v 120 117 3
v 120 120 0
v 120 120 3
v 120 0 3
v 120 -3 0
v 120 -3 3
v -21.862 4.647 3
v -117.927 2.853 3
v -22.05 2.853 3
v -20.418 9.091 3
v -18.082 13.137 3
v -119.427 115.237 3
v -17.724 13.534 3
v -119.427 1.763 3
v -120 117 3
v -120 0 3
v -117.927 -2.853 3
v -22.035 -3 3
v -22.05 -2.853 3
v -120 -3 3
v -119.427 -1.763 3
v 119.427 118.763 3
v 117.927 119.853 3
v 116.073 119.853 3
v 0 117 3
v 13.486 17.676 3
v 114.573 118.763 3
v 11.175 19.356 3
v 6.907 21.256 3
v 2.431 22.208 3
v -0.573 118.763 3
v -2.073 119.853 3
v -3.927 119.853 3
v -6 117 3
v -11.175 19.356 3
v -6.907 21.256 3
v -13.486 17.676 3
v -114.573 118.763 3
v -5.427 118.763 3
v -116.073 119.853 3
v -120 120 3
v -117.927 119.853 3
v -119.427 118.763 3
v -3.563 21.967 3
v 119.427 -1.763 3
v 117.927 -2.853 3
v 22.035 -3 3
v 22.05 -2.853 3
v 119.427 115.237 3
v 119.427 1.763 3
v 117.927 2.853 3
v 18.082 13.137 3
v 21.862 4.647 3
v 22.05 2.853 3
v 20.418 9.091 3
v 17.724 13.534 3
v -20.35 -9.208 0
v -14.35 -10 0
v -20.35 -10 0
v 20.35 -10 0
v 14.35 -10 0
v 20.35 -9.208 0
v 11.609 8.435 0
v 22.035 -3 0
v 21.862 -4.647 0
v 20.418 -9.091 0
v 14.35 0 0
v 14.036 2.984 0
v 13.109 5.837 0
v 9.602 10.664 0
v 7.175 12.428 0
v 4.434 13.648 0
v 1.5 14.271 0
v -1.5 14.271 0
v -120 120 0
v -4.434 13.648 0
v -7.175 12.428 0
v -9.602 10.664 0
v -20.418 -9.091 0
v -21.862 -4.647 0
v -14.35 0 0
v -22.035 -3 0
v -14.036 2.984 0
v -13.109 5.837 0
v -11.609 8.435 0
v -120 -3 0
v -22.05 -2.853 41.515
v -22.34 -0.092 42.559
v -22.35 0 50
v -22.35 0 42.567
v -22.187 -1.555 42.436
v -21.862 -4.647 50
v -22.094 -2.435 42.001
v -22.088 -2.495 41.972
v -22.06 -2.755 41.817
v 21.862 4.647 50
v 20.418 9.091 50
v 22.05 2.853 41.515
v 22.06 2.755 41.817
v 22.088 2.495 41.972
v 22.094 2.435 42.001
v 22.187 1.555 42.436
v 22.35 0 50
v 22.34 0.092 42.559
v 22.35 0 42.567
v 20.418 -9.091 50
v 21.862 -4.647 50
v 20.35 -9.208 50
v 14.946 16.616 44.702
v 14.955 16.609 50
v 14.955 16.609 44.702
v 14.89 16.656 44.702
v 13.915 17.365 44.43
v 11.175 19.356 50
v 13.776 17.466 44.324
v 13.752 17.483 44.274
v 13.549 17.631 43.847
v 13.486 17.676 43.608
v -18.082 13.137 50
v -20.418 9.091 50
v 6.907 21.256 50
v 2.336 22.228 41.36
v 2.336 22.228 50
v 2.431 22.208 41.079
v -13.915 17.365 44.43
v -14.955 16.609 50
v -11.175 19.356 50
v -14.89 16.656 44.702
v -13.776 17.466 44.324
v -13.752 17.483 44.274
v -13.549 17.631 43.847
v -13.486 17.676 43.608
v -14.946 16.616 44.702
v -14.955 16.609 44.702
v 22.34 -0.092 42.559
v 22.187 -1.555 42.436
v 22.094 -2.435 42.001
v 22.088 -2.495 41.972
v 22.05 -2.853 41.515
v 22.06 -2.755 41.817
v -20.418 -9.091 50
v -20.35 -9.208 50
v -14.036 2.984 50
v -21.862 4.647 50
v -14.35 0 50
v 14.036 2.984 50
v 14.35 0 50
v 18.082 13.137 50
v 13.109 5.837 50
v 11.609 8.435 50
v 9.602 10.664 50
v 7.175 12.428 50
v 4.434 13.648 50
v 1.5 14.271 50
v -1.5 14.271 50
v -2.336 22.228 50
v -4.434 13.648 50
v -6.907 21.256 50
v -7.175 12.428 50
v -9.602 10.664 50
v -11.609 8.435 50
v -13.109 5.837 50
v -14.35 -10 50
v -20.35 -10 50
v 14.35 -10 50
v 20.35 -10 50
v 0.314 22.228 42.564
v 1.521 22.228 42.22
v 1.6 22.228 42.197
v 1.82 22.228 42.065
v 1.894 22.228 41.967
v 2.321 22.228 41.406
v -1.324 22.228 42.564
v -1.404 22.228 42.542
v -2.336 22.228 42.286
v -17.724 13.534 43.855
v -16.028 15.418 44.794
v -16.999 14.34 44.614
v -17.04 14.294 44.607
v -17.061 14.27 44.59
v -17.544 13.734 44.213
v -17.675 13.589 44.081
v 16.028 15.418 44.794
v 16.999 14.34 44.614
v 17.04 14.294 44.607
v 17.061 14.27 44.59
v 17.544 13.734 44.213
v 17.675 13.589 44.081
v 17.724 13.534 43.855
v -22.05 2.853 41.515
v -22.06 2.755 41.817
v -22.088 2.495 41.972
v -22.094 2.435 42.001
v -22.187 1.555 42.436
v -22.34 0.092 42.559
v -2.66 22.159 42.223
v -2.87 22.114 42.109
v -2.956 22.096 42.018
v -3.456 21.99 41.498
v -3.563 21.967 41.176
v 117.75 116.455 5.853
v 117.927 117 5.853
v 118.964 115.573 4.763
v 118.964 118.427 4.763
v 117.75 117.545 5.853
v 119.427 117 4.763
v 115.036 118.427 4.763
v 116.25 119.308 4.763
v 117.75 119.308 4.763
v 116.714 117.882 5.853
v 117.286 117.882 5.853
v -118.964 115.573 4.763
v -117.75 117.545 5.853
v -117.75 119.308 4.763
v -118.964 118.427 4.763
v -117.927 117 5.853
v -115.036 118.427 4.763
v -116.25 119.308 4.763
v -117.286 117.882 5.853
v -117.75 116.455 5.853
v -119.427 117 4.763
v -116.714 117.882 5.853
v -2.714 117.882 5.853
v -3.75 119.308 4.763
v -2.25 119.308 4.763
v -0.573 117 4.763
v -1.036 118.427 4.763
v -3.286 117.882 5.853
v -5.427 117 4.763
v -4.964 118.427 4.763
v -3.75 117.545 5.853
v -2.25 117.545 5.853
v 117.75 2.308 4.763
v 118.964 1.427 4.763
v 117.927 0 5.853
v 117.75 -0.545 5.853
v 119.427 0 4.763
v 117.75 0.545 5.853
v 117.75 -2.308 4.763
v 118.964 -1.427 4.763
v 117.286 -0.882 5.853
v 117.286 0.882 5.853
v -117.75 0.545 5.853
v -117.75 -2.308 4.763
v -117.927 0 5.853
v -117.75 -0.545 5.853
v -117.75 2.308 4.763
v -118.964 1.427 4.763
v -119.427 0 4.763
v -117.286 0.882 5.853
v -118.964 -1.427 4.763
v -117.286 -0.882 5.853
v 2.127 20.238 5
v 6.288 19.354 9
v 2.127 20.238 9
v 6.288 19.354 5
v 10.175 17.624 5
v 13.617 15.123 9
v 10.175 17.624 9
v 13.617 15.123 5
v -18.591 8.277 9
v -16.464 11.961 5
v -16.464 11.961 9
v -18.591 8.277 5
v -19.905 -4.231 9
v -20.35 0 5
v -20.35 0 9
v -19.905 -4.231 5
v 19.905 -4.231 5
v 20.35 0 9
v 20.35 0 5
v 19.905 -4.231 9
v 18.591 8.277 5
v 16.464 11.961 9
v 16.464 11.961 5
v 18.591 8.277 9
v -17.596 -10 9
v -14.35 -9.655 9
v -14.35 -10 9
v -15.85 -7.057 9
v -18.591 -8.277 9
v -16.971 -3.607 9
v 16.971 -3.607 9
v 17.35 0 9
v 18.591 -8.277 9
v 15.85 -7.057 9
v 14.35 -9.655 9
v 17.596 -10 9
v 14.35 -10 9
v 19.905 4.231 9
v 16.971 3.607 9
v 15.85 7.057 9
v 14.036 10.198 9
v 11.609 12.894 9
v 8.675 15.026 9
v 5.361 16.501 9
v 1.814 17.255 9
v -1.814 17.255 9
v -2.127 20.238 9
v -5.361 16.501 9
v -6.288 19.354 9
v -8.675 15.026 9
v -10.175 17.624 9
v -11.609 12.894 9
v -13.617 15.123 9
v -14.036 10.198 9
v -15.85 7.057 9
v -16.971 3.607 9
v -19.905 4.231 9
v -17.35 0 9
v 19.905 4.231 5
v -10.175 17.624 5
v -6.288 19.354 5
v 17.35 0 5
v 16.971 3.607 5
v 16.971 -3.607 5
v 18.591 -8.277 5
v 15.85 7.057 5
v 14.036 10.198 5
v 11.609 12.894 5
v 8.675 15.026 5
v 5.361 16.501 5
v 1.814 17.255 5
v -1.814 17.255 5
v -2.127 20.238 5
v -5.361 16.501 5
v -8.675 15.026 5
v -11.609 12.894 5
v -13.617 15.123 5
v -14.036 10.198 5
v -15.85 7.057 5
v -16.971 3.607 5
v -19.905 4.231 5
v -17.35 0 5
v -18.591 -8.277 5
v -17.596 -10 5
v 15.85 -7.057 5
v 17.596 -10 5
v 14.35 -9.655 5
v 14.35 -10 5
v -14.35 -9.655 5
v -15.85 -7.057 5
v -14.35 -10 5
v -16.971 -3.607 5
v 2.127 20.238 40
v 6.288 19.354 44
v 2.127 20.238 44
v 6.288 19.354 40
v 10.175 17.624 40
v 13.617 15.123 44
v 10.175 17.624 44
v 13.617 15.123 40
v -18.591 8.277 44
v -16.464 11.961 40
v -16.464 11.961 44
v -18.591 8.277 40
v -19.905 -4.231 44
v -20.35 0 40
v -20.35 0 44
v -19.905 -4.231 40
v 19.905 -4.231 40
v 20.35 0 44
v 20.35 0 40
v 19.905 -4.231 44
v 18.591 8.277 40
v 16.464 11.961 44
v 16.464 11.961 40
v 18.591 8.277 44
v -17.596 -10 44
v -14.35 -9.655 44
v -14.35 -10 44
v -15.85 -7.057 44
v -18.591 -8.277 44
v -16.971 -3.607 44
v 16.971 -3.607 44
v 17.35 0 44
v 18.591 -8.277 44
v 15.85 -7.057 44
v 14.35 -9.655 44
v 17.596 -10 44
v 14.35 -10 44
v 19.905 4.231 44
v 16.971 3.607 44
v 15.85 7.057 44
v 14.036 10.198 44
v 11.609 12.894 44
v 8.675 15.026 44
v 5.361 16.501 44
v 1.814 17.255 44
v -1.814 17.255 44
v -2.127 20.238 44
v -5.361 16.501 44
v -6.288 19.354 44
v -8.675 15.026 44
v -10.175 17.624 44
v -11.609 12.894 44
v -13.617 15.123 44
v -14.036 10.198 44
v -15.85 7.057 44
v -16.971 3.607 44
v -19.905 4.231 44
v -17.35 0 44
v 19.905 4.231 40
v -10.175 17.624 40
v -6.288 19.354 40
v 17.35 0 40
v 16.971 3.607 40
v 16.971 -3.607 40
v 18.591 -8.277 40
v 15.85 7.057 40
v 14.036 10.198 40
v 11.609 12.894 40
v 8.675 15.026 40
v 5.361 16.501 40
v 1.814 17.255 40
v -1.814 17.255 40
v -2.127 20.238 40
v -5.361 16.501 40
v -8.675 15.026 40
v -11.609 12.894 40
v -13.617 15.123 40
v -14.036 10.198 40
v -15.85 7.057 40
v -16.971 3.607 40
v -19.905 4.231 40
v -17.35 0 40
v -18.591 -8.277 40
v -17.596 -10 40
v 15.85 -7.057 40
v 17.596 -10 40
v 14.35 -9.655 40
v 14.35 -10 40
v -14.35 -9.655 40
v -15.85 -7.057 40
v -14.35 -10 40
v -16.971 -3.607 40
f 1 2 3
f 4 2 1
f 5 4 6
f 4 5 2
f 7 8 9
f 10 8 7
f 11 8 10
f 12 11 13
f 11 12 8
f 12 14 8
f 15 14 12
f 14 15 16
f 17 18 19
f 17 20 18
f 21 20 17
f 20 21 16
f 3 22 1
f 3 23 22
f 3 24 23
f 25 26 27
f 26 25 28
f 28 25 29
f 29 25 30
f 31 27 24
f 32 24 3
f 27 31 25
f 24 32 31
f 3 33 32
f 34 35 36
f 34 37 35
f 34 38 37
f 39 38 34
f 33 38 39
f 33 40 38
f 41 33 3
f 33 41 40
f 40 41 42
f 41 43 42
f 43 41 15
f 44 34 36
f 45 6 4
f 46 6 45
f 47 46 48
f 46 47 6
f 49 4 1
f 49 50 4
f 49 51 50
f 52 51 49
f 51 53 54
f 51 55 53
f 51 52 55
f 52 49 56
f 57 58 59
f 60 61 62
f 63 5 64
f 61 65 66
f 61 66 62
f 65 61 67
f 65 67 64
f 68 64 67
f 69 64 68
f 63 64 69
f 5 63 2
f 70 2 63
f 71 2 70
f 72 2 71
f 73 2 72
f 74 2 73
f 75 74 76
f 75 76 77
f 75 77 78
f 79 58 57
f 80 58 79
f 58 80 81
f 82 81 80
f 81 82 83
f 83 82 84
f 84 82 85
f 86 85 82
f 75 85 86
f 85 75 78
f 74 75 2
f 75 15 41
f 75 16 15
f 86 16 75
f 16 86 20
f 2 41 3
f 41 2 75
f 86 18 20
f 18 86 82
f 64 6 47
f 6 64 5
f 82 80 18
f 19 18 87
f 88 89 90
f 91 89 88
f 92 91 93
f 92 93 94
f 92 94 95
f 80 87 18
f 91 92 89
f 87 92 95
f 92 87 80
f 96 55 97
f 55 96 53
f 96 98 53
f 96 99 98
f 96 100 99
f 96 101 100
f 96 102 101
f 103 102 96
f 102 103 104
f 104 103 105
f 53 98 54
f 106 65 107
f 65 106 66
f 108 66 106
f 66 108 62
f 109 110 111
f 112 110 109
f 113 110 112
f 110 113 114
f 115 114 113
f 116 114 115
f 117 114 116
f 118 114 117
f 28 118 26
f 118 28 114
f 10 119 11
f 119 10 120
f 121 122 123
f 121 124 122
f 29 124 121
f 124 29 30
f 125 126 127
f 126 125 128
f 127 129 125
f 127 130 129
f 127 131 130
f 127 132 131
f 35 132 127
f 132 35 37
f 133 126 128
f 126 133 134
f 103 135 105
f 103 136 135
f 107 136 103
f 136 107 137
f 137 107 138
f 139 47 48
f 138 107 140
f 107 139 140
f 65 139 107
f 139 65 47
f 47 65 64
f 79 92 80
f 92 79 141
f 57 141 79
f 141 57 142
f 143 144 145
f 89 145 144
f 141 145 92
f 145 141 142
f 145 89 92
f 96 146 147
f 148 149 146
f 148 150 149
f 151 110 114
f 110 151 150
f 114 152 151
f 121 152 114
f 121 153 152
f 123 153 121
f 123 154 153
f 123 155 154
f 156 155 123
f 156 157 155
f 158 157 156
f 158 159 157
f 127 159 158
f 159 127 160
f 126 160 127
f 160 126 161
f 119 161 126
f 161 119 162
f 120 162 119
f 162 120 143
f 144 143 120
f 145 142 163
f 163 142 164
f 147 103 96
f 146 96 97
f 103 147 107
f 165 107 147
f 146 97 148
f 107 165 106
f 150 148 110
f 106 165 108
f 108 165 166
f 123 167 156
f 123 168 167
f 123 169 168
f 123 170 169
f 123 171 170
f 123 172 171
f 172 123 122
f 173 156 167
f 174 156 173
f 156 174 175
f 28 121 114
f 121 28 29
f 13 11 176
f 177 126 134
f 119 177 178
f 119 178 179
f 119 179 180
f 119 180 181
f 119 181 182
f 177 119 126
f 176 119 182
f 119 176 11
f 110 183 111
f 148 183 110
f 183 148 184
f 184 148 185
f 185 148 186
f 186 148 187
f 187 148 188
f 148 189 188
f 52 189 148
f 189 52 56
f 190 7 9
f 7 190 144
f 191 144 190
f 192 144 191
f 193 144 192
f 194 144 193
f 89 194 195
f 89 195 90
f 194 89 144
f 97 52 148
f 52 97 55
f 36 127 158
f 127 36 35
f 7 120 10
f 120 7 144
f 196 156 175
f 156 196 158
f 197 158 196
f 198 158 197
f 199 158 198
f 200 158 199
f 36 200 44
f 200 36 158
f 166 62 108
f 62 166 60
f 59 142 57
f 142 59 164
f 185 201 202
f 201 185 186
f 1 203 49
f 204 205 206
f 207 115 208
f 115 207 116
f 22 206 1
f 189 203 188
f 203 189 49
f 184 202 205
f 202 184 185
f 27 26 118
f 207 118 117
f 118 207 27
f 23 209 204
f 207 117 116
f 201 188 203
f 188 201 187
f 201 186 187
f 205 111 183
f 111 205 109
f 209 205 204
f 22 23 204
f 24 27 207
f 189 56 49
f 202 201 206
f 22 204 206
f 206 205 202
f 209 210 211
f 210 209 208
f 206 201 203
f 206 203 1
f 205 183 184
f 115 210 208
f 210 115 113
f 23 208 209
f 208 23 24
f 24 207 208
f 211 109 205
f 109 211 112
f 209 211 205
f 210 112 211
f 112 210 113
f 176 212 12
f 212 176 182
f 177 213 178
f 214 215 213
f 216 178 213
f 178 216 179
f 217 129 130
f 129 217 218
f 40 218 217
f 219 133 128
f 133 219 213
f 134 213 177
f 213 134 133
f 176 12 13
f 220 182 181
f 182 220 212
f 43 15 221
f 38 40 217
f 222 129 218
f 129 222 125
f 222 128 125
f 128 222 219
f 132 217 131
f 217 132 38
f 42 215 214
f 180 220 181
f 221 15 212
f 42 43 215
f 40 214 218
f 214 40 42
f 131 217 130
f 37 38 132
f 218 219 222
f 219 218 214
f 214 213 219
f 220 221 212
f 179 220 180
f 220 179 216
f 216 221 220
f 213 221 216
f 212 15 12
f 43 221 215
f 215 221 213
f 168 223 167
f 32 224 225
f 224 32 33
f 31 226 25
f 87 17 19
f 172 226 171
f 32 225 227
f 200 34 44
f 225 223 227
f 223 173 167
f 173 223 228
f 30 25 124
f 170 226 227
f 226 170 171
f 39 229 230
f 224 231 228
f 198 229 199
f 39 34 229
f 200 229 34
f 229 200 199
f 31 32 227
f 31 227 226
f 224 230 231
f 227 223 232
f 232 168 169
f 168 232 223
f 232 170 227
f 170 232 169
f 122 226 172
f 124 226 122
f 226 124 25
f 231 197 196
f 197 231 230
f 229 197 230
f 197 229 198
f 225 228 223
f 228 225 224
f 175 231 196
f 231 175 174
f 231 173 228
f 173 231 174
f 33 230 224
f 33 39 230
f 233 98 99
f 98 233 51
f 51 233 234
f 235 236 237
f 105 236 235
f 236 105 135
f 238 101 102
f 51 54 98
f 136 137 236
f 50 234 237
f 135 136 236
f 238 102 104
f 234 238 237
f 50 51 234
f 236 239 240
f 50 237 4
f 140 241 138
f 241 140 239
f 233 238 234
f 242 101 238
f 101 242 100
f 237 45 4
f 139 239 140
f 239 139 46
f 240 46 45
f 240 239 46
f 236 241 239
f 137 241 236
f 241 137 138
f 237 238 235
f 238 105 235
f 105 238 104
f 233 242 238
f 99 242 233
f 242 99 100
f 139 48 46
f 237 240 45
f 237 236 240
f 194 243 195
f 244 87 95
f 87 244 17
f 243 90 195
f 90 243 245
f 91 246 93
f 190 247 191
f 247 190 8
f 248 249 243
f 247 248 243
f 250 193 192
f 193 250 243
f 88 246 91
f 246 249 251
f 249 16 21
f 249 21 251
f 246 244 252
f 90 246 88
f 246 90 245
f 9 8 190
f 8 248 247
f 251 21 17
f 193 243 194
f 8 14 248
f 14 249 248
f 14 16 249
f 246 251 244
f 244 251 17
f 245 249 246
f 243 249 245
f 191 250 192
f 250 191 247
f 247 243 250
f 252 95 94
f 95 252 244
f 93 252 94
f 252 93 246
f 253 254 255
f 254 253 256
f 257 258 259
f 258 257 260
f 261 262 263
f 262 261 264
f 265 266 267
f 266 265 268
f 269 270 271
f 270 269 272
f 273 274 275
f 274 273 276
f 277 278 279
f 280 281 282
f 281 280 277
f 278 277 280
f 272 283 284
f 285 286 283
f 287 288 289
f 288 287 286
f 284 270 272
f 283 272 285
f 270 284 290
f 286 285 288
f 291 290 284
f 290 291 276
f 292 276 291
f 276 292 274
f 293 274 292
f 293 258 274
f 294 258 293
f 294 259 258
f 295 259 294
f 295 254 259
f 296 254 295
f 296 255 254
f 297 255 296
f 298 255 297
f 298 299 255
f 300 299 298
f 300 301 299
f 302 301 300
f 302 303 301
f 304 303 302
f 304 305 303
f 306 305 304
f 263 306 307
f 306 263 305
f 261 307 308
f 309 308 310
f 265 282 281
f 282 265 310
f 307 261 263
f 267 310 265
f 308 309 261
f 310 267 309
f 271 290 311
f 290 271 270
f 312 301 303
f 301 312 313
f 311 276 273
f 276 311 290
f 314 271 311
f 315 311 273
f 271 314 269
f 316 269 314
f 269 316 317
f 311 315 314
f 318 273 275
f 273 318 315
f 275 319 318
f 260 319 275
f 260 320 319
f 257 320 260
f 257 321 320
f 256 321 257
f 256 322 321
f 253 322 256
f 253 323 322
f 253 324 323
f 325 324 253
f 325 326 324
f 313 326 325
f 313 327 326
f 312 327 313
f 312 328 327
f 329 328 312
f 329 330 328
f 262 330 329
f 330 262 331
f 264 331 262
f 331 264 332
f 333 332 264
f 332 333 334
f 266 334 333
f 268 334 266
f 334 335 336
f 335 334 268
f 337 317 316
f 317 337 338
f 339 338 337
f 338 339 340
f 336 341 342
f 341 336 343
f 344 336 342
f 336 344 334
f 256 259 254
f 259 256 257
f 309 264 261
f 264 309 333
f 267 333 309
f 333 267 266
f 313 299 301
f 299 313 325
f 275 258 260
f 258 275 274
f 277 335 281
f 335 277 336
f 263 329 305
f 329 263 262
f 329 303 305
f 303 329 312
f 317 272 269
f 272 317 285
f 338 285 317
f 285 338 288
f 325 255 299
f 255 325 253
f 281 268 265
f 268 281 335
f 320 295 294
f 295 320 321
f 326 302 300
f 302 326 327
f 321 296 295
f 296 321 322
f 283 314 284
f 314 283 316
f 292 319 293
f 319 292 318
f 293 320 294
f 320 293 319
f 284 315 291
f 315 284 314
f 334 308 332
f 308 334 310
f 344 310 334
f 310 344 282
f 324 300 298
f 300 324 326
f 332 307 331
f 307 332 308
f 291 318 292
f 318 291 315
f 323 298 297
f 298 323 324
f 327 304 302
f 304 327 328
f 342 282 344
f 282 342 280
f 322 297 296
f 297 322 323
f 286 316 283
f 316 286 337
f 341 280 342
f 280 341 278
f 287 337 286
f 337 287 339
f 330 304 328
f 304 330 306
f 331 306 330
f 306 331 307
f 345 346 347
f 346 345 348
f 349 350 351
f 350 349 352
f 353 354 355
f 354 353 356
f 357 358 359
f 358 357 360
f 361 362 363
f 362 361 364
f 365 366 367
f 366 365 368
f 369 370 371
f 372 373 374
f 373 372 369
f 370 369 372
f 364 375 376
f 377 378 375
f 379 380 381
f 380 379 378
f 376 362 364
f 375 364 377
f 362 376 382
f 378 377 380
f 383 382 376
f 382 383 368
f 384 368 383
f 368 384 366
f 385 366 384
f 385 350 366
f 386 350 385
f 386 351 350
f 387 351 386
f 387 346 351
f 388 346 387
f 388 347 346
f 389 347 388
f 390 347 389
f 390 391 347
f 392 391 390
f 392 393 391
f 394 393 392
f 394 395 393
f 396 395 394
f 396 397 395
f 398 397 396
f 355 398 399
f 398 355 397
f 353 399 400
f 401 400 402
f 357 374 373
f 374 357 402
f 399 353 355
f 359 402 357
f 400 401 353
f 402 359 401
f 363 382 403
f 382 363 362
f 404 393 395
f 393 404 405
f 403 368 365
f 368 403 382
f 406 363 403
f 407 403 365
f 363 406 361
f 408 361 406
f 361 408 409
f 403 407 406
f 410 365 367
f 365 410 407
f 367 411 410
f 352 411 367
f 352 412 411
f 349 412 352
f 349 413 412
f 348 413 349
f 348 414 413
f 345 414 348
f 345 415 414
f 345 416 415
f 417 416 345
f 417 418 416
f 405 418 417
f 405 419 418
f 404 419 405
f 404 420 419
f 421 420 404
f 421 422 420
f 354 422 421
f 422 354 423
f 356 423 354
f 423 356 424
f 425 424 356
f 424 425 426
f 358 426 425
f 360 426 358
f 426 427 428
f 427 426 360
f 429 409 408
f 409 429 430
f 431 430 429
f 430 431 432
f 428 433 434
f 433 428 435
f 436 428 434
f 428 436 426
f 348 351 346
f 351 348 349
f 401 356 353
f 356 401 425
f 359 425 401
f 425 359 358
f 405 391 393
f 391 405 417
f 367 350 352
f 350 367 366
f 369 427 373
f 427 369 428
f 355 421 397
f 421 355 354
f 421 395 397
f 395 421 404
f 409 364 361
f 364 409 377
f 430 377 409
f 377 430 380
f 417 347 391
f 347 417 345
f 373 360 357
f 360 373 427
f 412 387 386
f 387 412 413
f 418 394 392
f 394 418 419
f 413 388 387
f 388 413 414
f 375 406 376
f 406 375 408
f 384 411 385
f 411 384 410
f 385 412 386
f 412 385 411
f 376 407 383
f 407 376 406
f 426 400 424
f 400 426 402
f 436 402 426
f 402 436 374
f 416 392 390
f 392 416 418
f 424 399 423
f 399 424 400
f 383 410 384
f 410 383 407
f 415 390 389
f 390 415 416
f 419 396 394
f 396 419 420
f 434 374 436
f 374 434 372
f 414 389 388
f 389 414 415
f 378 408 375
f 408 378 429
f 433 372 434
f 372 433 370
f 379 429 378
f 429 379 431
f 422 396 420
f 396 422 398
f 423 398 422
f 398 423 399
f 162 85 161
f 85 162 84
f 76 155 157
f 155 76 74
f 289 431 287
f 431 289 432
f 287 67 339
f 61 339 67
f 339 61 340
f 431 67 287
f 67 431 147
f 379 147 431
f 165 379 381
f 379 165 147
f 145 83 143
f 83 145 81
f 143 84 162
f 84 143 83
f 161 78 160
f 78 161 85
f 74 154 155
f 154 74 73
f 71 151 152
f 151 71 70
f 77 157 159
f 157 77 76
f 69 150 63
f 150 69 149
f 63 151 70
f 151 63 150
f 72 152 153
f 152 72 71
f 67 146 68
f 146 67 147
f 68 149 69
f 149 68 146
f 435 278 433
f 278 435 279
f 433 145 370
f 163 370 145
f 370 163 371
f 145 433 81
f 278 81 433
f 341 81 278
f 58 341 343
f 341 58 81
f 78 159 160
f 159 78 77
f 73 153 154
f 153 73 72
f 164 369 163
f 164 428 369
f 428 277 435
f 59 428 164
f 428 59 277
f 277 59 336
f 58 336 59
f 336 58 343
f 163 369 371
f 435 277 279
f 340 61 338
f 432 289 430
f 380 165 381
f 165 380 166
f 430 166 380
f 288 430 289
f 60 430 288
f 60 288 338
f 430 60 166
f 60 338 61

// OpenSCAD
pipe_r=(28.5+0.2)/2;

difference() {
    union() {
        translate([-240/2,-3,0]) cube([240,100+20+3,3]);
        cylinder(50, pipe_r+8, pipe_r+8);
        translate([-pipe_r-6,-20,0]) cube([(pipe_r+6)*2,20,50]);
        
        pillar(240/2, 100+20-3, 1.5);
        pillar(-240/2+6, 100+20-3, 1.5);
        pillar(0, 100+20-3, 1.5);
        pillar(240/2, 0, 1.5);
        pillar(-240/2+6, 0, 1.5);
    }
    
    hull(){
        translate([0,0,-1]) cylinder(50+2, pipe_r, pipe_r);
        translate([0,-50,-1]) cylinder(50+2, pipe_r, pipe_r);
    }
    
    translate([0,0,5]) donut(pipe_r+3, pipe_r+6, 4);
    //translate([0,0,25]) donut(pipe_r+3, pipe_r+6, 4);
    translate([0,0,40]) donut(pipe_r+3, pipe_r+6, 4);
    
    translate([-pipe_r-7,-50-10,-1]) cube([(pipe_r+7)*2,50,52]);    
}

module donut(in, out, h) {
    difference(){
        cylinder(h, out, out);
        translate([0,0,-2]) cylinder(h+2, in, in);
    }
}

module pillar(x,y,z) {
    hull() {
        cylinder(50, 3, 3);
        translate([x-3,y,z+3/2]) sphere(3);
    }
}
